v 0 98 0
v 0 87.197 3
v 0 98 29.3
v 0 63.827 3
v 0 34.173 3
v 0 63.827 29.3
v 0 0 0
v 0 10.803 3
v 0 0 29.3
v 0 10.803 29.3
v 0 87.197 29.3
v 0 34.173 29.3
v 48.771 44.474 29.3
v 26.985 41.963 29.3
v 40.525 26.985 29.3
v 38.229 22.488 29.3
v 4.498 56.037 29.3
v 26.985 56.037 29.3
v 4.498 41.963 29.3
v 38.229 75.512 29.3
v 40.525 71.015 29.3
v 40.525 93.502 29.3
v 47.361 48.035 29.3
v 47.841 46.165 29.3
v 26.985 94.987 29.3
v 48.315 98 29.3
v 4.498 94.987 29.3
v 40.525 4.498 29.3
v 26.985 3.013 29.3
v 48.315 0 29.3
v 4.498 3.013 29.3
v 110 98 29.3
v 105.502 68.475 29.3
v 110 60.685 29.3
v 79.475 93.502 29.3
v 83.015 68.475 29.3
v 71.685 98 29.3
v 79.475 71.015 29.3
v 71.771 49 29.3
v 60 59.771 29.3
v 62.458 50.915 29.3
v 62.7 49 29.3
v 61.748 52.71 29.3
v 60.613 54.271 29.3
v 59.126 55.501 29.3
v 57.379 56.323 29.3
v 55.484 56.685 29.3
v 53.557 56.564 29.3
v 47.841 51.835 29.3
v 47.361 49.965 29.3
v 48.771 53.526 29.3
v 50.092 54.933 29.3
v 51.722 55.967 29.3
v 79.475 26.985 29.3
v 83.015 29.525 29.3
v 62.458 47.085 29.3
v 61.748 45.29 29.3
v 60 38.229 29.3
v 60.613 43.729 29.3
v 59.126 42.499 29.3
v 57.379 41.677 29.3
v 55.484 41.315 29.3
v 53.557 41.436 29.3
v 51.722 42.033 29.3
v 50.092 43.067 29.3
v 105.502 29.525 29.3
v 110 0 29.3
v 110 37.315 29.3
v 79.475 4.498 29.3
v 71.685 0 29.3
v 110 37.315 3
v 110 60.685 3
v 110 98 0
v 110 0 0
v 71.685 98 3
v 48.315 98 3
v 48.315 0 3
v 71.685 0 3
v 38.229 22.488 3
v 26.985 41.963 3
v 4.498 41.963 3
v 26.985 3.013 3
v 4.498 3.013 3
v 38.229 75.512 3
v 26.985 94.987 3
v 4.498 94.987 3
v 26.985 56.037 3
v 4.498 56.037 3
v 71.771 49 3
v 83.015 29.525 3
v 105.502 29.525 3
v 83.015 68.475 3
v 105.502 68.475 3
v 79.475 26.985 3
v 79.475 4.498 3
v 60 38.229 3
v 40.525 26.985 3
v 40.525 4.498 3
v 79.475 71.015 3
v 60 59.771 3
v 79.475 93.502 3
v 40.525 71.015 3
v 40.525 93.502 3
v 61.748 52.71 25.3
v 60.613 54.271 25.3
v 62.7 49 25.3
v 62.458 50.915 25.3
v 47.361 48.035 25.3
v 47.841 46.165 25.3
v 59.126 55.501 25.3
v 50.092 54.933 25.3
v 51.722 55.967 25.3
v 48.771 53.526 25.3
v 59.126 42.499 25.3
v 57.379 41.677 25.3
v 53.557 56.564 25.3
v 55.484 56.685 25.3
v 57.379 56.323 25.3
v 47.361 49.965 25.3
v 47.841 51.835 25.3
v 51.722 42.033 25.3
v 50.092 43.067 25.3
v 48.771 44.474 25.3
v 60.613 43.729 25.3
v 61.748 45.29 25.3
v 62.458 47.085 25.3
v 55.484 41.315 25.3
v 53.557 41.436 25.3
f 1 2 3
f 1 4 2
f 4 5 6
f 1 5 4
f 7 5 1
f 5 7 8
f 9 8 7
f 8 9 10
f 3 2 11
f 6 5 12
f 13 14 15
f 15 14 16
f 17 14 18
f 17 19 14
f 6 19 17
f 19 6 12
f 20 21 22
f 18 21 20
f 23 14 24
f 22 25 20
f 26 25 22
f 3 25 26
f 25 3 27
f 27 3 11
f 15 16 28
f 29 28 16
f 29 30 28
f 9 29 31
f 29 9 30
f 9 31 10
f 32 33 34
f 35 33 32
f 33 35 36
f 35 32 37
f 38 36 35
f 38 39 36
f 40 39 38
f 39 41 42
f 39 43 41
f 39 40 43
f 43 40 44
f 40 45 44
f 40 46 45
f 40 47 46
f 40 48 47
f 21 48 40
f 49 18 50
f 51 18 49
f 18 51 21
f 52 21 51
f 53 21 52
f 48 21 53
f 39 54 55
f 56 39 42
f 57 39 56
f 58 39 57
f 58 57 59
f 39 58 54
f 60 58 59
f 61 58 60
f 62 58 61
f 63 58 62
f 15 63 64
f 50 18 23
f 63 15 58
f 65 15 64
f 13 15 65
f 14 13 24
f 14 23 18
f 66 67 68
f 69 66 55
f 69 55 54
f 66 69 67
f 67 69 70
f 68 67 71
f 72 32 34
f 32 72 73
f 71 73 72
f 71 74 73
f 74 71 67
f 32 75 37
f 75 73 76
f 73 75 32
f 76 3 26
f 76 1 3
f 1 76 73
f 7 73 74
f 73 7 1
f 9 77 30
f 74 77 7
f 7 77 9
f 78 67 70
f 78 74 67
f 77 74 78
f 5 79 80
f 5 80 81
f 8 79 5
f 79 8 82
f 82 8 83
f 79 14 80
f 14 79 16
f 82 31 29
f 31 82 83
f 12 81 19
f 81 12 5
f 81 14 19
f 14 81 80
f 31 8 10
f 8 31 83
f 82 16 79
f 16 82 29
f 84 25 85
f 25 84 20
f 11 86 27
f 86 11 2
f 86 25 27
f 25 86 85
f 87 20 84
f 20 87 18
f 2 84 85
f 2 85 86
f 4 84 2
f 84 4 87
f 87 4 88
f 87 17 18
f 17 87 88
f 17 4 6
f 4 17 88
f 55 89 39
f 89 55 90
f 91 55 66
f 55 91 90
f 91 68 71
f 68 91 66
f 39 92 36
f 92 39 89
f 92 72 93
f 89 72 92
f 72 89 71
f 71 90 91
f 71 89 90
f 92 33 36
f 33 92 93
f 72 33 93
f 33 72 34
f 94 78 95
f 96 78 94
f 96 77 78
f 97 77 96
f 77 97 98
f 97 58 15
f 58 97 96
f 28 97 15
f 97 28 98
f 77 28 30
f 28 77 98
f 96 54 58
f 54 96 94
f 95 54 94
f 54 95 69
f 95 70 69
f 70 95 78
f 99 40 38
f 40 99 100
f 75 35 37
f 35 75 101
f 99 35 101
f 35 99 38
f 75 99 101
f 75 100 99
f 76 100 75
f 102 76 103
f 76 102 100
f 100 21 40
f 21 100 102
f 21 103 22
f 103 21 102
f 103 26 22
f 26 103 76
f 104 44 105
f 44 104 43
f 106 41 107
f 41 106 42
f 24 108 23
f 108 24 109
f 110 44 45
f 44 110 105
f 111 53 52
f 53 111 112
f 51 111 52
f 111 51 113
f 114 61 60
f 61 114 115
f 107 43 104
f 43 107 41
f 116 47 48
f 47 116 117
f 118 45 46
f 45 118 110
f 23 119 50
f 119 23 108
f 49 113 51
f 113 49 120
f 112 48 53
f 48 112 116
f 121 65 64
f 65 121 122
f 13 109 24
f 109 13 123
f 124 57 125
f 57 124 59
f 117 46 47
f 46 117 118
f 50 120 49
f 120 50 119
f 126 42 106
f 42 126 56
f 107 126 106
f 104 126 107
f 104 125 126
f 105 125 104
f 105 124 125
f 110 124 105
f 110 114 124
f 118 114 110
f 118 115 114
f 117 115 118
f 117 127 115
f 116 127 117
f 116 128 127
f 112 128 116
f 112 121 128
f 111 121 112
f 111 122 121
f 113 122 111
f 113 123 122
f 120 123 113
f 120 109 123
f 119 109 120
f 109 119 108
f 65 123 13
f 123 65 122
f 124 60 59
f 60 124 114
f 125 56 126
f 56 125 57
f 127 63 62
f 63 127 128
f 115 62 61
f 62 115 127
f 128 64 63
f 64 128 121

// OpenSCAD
// file: HexPileLib.scad
module LeftPile(totalHeight, singlePileHeight, singlePileDiameter, pileCount){
    pileHeight = (pileCount * singlePileHeight) + .5;
    offset = singlePileDiameter * .15;
    translate([singlePileDiameter/2 - offset, singlePileDiameter/2, totalHeight - pileHeight])
        cylinder(pileHeight, d=singlePileDiameter, $fn=6);
}

module RightPile(totalHeight, singlePileHeight, singlePileDiameter, pileCount){
    translate([0, singlePileDiameter, 0])
        rotate([0, 0, 180])
            LeftPile(totalHeight, singlePileHeight, singlePileDiameter, pileCount);
}

module BottomPile(totalHeight, singlePileHeight, singlePileDiameter, pileCount){
    translate([singlePileDiameter, 0, 0])
        rotate([0, 0, 90])
            LeftPile(totalHeight, singlePileHeight, singlePileDiameter, pileCount);
}

module TopPile(totalHeight, singlePileHeight, singlePileDiameter, pileCount){
        rotate([0, 0, 270])
            LeftPile(totalHeight, singlePileHeight, singlePileDiameter, pileCount);
}
// file: ColonistsPlacePileLib.scad
include<HexPileLib.scad>
//25.82 by 32.82 by 2.15
singlePlacePileHeight = 2.15;
//flat to flat = d = 38.15
//D = d * 2/rt(3)
d = 38.15 + .8;
D = d * 2/sqrt(3);
singlePlacePileDiameter = D;

module LeftPlacePile(totalHeight, placePileCount){
    LeftPile(
        totalHeight,
        singlePlacePileHeight,
        singlePlacePileDiameter,
        placePileCount);
}

module RightPlacePile(totalHeight, placePileCount){
    RightPile(
        totalHeight,
        singlePlacePileHeight,
        singlePlacePileDiameter,
        placePileCount);
}

module BottomPlacePile(totalHeight, placePileCount){
    BottomPile(
        totalHeight,
        singlePlacePileHeight,
        singlePlacePileDiameter,
        placePileCount);
}

module TopPlacePile(totalHeight, placePileCount){
    TopPile(
        totalHeight,
        singlePlacePileHeight,
        singlePlacePileDiameter,
        placePileCount);
}

function placePileHeight(placePileCount) =
    (placePileCount * singlePlacePileHeight) + .5;

function actualPlacePileWidth() = singlePlacePileDiameter * .85;
    
// main file
include<ColonistsPlacePileLib.scad>

magnetBaseInnerDiameter = 15.4;
magnetHeight = 4.0;
floorHeight = 3;
tileCount = 12;
height = placePileHeight(tileCount) + floorHeight;
length = 110;
width = 98;
wallThickness = 3;

difference() {
    
    cube([length, width, height]);
    translate([0, 0, 0])
        LeftPlacePile(height, tileCount);
    translate([0, width - singlePlacePileDiameter, 0])
        LeftPlacePile(height, tileCount);
    translate([length, width/2 - singlePlacePileDiameter/2, 0])
        RightPlacePile(height, tileCount);
    translate([length/2 - singlePlacePileDiameter/2 + 5, 0, 0])
        BottomPlacePile(height, tileCount);
    translate([length/2 - singlePlacePileDiameter/2 + 5, width, 0])
        TopPlacePile(height, tileCount);
    
    translate([length/2, width/2, height - magnetHeight])
        cylinder(magnetHeight, d=magnetBaseInnerDiameter);
}
